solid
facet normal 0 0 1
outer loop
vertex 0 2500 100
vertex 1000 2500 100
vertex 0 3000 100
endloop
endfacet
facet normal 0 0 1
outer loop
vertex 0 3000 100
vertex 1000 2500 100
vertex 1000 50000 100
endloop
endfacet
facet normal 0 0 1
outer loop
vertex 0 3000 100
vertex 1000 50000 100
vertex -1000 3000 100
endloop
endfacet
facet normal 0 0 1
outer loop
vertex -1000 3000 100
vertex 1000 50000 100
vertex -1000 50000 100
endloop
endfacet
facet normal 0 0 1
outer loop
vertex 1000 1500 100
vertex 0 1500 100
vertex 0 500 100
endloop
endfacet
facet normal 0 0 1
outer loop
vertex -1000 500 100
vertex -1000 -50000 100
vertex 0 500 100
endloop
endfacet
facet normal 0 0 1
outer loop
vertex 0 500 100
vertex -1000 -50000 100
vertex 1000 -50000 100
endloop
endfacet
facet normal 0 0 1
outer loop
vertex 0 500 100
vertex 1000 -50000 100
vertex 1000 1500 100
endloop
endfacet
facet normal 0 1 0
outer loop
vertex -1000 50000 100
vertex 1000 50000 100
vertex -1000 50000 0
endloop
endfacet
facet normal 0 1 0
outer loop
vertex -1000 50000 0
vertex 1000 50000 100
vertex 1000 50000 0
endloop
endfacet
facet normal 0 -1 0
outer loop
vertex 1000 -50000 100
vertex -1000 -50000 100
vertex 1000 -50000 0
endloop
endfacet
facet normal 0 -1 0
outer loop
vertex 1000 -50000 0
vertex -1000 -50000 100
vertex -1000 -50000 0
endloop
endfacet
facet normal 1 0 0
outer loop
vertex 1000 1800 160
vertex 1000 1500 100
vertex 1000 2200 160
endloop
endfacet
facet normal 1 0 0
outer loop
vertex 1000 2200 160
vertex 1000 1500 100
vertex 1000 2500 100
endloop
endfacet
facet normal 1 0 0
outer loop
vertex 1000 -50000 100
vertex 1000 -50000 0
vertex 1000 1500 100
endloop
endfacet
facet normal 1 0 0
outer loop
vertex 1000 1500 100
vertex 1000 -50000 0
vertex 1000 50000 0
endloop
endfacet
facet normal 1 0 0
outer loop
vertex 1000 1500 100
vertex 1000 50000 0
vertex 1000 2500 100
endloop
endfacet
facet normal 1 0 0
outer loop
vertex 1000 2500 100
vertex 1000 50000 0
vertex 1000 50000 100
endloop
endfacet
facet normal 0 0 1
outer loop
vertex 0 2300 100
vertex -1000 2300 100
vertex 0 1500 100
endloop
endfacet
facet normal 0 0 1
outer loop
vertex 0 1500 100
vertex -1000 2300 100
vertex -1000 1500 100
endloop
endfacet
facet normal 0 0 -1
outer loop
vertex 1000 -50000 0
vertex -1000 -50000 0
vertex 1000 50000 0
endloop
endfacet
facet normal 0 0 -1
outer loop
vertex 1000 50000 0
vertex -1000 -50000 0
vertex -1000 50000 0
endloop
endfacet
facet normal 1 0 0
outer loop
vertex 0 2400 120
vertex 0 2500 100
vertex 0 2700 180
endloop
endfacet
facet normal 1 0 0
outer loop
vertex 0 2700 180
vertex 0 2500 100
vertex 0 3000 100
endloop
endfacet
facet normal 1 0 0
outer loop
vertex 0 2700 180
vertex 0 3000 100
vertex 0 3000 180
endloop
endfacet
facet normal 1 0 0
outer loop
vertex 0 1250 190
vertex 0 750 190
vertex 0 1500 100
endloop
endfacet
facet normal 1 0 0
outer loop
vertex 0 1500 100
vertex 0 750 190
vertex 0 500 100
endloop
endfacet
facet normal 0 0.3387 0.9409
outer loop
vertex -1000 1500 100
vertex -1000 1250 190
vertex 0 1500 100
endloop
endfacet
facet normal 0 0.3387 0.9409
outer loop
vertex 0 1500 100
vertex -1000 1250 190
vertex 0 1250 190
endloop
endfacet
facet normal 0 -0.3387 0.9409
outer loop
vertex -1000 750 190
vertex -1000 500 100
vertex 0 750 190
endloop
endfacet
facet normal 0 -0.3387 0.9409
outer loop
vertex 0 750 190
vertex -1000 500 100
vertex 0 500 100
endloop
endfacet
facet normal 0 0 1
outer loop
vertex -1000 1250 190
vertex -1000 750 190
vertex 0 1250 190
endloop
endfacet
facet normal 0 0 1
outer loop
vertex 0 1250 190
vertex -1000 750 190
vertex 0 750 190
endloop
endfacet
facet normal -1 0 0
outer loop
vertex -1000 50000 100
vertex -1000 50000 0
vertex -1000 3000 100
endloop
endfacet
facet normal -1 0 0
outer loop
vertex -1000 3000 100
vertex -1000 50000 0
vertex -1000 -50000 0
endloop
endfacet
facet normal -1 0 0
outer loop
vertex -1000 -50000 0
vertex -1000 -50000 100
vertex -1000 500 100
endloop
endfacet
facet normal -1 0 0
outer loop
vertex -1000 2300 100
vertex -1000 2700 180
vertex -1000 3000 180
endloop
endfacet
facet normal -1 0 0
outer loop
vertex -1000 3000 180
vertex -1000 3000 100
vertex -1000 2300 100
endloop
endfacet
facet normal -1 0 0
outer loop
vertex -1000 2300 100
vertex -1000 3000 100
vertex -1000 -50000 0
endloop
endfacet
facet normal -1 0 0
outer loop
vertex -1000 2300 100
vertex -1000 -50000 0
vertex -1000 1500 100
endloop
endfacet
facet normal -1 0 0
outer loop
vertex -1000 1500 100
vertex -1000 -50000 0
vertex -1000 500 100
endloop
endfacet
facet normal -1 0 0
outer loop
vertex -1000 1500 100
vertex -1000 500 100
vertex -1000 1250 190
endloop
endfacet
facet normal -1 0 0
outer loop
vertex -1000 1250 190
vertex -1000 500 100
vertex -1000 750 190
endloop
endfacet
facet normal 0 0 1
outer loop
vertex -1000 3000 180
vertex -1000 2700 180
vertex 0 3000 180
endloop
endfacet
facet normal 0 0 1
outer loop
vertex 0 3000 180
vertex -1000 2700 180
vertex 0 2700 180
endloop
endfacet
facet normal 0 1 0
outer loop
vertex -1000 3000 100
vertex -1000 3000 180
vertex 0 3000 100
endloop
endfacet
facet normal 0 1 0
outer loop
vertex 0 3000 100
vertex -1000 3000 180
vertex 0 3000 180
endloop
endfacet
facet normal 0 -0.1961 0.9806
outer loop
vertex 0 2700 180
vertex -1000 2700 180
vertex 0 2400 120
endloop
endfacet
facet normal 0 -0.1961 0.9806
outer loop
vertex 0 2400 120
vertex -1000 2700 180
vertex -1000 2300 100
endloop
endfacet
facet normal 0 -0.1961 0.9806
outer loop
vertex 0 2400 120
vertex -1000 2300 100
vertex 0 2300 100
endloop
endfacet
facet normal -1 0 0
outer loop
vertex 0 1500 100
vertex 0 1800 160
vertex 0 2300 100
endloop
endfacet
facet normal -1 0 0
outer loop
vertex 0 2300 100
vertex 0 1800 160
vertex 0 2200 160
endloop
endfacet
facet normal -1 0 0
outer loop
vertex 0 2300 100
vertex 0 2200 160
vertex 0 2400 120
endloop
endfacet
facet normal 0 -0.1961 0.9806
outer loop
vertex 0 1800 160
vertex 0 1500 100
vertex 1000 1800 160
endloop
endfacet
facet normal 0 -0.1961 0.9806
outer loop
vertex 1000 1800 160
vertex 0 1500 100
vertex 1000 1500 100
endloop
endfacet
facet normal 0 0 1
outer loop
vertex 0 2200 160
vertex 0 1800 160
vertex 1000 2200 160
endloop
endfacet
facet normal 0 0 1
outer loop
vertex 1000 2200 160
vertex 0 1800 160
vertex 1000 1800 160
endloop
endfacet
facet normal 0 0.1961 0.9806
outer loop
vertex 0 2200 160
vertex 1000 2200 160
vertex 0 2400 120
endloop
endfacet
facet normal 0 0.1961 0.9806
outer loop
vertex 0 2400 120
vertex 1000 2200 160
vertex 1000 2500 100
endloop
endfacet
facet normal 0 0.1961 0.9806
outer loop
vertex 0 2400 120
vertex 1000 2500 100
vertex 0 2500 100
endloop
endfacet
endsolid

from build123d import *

# Parameters (mm, degrees)
BOSS_EXTRUDE1_DEPTH = 100
BOSS_EXTRUDE2_DEPTH = 1000
BOSS_EXTRUDE3_DEPTH = 1000


with BuildPart() as part:
    # Sketch1 → Boss-Extrude1 (new body)
    with BuildSketch(Plane.XY):
        Polygon((0, 50000), (0, 0), (0, -50000), (1000, -50000), (1000, 50000), align=None)
    extrude(amount=BOSS_EXTRUDE1_DEPTH)

    # Sketch2 → Boss-Extrude2 (add)
    with BuildSketch(Plane.ZY):
        Polygon((100, -50000), (100, 500), (190, 750), (190, 1250), (100, 1500), (100, 2300), (180, 2700), (180, 3000), (100, 3000), (100, 50000), (0, 50000), (0, -50000), align=None)
    extrude(amount=BOSS_EXTRUDE2_DEPTH)

    # Sketch3 → Boss-Extrude3 (add)
    with BuildSketch(Plane(origin=(1000, 0, 0), x_dir=(0, 0, -1), z_dir=(1, 0, 0))):
        Polygon((-100, 1500), (-160, 1800), (-160, 2200), (-100, 2500), align=None)
    extrude(amount=-BOSS_EXTRUDE3_DEPTH)


solid = part.part
